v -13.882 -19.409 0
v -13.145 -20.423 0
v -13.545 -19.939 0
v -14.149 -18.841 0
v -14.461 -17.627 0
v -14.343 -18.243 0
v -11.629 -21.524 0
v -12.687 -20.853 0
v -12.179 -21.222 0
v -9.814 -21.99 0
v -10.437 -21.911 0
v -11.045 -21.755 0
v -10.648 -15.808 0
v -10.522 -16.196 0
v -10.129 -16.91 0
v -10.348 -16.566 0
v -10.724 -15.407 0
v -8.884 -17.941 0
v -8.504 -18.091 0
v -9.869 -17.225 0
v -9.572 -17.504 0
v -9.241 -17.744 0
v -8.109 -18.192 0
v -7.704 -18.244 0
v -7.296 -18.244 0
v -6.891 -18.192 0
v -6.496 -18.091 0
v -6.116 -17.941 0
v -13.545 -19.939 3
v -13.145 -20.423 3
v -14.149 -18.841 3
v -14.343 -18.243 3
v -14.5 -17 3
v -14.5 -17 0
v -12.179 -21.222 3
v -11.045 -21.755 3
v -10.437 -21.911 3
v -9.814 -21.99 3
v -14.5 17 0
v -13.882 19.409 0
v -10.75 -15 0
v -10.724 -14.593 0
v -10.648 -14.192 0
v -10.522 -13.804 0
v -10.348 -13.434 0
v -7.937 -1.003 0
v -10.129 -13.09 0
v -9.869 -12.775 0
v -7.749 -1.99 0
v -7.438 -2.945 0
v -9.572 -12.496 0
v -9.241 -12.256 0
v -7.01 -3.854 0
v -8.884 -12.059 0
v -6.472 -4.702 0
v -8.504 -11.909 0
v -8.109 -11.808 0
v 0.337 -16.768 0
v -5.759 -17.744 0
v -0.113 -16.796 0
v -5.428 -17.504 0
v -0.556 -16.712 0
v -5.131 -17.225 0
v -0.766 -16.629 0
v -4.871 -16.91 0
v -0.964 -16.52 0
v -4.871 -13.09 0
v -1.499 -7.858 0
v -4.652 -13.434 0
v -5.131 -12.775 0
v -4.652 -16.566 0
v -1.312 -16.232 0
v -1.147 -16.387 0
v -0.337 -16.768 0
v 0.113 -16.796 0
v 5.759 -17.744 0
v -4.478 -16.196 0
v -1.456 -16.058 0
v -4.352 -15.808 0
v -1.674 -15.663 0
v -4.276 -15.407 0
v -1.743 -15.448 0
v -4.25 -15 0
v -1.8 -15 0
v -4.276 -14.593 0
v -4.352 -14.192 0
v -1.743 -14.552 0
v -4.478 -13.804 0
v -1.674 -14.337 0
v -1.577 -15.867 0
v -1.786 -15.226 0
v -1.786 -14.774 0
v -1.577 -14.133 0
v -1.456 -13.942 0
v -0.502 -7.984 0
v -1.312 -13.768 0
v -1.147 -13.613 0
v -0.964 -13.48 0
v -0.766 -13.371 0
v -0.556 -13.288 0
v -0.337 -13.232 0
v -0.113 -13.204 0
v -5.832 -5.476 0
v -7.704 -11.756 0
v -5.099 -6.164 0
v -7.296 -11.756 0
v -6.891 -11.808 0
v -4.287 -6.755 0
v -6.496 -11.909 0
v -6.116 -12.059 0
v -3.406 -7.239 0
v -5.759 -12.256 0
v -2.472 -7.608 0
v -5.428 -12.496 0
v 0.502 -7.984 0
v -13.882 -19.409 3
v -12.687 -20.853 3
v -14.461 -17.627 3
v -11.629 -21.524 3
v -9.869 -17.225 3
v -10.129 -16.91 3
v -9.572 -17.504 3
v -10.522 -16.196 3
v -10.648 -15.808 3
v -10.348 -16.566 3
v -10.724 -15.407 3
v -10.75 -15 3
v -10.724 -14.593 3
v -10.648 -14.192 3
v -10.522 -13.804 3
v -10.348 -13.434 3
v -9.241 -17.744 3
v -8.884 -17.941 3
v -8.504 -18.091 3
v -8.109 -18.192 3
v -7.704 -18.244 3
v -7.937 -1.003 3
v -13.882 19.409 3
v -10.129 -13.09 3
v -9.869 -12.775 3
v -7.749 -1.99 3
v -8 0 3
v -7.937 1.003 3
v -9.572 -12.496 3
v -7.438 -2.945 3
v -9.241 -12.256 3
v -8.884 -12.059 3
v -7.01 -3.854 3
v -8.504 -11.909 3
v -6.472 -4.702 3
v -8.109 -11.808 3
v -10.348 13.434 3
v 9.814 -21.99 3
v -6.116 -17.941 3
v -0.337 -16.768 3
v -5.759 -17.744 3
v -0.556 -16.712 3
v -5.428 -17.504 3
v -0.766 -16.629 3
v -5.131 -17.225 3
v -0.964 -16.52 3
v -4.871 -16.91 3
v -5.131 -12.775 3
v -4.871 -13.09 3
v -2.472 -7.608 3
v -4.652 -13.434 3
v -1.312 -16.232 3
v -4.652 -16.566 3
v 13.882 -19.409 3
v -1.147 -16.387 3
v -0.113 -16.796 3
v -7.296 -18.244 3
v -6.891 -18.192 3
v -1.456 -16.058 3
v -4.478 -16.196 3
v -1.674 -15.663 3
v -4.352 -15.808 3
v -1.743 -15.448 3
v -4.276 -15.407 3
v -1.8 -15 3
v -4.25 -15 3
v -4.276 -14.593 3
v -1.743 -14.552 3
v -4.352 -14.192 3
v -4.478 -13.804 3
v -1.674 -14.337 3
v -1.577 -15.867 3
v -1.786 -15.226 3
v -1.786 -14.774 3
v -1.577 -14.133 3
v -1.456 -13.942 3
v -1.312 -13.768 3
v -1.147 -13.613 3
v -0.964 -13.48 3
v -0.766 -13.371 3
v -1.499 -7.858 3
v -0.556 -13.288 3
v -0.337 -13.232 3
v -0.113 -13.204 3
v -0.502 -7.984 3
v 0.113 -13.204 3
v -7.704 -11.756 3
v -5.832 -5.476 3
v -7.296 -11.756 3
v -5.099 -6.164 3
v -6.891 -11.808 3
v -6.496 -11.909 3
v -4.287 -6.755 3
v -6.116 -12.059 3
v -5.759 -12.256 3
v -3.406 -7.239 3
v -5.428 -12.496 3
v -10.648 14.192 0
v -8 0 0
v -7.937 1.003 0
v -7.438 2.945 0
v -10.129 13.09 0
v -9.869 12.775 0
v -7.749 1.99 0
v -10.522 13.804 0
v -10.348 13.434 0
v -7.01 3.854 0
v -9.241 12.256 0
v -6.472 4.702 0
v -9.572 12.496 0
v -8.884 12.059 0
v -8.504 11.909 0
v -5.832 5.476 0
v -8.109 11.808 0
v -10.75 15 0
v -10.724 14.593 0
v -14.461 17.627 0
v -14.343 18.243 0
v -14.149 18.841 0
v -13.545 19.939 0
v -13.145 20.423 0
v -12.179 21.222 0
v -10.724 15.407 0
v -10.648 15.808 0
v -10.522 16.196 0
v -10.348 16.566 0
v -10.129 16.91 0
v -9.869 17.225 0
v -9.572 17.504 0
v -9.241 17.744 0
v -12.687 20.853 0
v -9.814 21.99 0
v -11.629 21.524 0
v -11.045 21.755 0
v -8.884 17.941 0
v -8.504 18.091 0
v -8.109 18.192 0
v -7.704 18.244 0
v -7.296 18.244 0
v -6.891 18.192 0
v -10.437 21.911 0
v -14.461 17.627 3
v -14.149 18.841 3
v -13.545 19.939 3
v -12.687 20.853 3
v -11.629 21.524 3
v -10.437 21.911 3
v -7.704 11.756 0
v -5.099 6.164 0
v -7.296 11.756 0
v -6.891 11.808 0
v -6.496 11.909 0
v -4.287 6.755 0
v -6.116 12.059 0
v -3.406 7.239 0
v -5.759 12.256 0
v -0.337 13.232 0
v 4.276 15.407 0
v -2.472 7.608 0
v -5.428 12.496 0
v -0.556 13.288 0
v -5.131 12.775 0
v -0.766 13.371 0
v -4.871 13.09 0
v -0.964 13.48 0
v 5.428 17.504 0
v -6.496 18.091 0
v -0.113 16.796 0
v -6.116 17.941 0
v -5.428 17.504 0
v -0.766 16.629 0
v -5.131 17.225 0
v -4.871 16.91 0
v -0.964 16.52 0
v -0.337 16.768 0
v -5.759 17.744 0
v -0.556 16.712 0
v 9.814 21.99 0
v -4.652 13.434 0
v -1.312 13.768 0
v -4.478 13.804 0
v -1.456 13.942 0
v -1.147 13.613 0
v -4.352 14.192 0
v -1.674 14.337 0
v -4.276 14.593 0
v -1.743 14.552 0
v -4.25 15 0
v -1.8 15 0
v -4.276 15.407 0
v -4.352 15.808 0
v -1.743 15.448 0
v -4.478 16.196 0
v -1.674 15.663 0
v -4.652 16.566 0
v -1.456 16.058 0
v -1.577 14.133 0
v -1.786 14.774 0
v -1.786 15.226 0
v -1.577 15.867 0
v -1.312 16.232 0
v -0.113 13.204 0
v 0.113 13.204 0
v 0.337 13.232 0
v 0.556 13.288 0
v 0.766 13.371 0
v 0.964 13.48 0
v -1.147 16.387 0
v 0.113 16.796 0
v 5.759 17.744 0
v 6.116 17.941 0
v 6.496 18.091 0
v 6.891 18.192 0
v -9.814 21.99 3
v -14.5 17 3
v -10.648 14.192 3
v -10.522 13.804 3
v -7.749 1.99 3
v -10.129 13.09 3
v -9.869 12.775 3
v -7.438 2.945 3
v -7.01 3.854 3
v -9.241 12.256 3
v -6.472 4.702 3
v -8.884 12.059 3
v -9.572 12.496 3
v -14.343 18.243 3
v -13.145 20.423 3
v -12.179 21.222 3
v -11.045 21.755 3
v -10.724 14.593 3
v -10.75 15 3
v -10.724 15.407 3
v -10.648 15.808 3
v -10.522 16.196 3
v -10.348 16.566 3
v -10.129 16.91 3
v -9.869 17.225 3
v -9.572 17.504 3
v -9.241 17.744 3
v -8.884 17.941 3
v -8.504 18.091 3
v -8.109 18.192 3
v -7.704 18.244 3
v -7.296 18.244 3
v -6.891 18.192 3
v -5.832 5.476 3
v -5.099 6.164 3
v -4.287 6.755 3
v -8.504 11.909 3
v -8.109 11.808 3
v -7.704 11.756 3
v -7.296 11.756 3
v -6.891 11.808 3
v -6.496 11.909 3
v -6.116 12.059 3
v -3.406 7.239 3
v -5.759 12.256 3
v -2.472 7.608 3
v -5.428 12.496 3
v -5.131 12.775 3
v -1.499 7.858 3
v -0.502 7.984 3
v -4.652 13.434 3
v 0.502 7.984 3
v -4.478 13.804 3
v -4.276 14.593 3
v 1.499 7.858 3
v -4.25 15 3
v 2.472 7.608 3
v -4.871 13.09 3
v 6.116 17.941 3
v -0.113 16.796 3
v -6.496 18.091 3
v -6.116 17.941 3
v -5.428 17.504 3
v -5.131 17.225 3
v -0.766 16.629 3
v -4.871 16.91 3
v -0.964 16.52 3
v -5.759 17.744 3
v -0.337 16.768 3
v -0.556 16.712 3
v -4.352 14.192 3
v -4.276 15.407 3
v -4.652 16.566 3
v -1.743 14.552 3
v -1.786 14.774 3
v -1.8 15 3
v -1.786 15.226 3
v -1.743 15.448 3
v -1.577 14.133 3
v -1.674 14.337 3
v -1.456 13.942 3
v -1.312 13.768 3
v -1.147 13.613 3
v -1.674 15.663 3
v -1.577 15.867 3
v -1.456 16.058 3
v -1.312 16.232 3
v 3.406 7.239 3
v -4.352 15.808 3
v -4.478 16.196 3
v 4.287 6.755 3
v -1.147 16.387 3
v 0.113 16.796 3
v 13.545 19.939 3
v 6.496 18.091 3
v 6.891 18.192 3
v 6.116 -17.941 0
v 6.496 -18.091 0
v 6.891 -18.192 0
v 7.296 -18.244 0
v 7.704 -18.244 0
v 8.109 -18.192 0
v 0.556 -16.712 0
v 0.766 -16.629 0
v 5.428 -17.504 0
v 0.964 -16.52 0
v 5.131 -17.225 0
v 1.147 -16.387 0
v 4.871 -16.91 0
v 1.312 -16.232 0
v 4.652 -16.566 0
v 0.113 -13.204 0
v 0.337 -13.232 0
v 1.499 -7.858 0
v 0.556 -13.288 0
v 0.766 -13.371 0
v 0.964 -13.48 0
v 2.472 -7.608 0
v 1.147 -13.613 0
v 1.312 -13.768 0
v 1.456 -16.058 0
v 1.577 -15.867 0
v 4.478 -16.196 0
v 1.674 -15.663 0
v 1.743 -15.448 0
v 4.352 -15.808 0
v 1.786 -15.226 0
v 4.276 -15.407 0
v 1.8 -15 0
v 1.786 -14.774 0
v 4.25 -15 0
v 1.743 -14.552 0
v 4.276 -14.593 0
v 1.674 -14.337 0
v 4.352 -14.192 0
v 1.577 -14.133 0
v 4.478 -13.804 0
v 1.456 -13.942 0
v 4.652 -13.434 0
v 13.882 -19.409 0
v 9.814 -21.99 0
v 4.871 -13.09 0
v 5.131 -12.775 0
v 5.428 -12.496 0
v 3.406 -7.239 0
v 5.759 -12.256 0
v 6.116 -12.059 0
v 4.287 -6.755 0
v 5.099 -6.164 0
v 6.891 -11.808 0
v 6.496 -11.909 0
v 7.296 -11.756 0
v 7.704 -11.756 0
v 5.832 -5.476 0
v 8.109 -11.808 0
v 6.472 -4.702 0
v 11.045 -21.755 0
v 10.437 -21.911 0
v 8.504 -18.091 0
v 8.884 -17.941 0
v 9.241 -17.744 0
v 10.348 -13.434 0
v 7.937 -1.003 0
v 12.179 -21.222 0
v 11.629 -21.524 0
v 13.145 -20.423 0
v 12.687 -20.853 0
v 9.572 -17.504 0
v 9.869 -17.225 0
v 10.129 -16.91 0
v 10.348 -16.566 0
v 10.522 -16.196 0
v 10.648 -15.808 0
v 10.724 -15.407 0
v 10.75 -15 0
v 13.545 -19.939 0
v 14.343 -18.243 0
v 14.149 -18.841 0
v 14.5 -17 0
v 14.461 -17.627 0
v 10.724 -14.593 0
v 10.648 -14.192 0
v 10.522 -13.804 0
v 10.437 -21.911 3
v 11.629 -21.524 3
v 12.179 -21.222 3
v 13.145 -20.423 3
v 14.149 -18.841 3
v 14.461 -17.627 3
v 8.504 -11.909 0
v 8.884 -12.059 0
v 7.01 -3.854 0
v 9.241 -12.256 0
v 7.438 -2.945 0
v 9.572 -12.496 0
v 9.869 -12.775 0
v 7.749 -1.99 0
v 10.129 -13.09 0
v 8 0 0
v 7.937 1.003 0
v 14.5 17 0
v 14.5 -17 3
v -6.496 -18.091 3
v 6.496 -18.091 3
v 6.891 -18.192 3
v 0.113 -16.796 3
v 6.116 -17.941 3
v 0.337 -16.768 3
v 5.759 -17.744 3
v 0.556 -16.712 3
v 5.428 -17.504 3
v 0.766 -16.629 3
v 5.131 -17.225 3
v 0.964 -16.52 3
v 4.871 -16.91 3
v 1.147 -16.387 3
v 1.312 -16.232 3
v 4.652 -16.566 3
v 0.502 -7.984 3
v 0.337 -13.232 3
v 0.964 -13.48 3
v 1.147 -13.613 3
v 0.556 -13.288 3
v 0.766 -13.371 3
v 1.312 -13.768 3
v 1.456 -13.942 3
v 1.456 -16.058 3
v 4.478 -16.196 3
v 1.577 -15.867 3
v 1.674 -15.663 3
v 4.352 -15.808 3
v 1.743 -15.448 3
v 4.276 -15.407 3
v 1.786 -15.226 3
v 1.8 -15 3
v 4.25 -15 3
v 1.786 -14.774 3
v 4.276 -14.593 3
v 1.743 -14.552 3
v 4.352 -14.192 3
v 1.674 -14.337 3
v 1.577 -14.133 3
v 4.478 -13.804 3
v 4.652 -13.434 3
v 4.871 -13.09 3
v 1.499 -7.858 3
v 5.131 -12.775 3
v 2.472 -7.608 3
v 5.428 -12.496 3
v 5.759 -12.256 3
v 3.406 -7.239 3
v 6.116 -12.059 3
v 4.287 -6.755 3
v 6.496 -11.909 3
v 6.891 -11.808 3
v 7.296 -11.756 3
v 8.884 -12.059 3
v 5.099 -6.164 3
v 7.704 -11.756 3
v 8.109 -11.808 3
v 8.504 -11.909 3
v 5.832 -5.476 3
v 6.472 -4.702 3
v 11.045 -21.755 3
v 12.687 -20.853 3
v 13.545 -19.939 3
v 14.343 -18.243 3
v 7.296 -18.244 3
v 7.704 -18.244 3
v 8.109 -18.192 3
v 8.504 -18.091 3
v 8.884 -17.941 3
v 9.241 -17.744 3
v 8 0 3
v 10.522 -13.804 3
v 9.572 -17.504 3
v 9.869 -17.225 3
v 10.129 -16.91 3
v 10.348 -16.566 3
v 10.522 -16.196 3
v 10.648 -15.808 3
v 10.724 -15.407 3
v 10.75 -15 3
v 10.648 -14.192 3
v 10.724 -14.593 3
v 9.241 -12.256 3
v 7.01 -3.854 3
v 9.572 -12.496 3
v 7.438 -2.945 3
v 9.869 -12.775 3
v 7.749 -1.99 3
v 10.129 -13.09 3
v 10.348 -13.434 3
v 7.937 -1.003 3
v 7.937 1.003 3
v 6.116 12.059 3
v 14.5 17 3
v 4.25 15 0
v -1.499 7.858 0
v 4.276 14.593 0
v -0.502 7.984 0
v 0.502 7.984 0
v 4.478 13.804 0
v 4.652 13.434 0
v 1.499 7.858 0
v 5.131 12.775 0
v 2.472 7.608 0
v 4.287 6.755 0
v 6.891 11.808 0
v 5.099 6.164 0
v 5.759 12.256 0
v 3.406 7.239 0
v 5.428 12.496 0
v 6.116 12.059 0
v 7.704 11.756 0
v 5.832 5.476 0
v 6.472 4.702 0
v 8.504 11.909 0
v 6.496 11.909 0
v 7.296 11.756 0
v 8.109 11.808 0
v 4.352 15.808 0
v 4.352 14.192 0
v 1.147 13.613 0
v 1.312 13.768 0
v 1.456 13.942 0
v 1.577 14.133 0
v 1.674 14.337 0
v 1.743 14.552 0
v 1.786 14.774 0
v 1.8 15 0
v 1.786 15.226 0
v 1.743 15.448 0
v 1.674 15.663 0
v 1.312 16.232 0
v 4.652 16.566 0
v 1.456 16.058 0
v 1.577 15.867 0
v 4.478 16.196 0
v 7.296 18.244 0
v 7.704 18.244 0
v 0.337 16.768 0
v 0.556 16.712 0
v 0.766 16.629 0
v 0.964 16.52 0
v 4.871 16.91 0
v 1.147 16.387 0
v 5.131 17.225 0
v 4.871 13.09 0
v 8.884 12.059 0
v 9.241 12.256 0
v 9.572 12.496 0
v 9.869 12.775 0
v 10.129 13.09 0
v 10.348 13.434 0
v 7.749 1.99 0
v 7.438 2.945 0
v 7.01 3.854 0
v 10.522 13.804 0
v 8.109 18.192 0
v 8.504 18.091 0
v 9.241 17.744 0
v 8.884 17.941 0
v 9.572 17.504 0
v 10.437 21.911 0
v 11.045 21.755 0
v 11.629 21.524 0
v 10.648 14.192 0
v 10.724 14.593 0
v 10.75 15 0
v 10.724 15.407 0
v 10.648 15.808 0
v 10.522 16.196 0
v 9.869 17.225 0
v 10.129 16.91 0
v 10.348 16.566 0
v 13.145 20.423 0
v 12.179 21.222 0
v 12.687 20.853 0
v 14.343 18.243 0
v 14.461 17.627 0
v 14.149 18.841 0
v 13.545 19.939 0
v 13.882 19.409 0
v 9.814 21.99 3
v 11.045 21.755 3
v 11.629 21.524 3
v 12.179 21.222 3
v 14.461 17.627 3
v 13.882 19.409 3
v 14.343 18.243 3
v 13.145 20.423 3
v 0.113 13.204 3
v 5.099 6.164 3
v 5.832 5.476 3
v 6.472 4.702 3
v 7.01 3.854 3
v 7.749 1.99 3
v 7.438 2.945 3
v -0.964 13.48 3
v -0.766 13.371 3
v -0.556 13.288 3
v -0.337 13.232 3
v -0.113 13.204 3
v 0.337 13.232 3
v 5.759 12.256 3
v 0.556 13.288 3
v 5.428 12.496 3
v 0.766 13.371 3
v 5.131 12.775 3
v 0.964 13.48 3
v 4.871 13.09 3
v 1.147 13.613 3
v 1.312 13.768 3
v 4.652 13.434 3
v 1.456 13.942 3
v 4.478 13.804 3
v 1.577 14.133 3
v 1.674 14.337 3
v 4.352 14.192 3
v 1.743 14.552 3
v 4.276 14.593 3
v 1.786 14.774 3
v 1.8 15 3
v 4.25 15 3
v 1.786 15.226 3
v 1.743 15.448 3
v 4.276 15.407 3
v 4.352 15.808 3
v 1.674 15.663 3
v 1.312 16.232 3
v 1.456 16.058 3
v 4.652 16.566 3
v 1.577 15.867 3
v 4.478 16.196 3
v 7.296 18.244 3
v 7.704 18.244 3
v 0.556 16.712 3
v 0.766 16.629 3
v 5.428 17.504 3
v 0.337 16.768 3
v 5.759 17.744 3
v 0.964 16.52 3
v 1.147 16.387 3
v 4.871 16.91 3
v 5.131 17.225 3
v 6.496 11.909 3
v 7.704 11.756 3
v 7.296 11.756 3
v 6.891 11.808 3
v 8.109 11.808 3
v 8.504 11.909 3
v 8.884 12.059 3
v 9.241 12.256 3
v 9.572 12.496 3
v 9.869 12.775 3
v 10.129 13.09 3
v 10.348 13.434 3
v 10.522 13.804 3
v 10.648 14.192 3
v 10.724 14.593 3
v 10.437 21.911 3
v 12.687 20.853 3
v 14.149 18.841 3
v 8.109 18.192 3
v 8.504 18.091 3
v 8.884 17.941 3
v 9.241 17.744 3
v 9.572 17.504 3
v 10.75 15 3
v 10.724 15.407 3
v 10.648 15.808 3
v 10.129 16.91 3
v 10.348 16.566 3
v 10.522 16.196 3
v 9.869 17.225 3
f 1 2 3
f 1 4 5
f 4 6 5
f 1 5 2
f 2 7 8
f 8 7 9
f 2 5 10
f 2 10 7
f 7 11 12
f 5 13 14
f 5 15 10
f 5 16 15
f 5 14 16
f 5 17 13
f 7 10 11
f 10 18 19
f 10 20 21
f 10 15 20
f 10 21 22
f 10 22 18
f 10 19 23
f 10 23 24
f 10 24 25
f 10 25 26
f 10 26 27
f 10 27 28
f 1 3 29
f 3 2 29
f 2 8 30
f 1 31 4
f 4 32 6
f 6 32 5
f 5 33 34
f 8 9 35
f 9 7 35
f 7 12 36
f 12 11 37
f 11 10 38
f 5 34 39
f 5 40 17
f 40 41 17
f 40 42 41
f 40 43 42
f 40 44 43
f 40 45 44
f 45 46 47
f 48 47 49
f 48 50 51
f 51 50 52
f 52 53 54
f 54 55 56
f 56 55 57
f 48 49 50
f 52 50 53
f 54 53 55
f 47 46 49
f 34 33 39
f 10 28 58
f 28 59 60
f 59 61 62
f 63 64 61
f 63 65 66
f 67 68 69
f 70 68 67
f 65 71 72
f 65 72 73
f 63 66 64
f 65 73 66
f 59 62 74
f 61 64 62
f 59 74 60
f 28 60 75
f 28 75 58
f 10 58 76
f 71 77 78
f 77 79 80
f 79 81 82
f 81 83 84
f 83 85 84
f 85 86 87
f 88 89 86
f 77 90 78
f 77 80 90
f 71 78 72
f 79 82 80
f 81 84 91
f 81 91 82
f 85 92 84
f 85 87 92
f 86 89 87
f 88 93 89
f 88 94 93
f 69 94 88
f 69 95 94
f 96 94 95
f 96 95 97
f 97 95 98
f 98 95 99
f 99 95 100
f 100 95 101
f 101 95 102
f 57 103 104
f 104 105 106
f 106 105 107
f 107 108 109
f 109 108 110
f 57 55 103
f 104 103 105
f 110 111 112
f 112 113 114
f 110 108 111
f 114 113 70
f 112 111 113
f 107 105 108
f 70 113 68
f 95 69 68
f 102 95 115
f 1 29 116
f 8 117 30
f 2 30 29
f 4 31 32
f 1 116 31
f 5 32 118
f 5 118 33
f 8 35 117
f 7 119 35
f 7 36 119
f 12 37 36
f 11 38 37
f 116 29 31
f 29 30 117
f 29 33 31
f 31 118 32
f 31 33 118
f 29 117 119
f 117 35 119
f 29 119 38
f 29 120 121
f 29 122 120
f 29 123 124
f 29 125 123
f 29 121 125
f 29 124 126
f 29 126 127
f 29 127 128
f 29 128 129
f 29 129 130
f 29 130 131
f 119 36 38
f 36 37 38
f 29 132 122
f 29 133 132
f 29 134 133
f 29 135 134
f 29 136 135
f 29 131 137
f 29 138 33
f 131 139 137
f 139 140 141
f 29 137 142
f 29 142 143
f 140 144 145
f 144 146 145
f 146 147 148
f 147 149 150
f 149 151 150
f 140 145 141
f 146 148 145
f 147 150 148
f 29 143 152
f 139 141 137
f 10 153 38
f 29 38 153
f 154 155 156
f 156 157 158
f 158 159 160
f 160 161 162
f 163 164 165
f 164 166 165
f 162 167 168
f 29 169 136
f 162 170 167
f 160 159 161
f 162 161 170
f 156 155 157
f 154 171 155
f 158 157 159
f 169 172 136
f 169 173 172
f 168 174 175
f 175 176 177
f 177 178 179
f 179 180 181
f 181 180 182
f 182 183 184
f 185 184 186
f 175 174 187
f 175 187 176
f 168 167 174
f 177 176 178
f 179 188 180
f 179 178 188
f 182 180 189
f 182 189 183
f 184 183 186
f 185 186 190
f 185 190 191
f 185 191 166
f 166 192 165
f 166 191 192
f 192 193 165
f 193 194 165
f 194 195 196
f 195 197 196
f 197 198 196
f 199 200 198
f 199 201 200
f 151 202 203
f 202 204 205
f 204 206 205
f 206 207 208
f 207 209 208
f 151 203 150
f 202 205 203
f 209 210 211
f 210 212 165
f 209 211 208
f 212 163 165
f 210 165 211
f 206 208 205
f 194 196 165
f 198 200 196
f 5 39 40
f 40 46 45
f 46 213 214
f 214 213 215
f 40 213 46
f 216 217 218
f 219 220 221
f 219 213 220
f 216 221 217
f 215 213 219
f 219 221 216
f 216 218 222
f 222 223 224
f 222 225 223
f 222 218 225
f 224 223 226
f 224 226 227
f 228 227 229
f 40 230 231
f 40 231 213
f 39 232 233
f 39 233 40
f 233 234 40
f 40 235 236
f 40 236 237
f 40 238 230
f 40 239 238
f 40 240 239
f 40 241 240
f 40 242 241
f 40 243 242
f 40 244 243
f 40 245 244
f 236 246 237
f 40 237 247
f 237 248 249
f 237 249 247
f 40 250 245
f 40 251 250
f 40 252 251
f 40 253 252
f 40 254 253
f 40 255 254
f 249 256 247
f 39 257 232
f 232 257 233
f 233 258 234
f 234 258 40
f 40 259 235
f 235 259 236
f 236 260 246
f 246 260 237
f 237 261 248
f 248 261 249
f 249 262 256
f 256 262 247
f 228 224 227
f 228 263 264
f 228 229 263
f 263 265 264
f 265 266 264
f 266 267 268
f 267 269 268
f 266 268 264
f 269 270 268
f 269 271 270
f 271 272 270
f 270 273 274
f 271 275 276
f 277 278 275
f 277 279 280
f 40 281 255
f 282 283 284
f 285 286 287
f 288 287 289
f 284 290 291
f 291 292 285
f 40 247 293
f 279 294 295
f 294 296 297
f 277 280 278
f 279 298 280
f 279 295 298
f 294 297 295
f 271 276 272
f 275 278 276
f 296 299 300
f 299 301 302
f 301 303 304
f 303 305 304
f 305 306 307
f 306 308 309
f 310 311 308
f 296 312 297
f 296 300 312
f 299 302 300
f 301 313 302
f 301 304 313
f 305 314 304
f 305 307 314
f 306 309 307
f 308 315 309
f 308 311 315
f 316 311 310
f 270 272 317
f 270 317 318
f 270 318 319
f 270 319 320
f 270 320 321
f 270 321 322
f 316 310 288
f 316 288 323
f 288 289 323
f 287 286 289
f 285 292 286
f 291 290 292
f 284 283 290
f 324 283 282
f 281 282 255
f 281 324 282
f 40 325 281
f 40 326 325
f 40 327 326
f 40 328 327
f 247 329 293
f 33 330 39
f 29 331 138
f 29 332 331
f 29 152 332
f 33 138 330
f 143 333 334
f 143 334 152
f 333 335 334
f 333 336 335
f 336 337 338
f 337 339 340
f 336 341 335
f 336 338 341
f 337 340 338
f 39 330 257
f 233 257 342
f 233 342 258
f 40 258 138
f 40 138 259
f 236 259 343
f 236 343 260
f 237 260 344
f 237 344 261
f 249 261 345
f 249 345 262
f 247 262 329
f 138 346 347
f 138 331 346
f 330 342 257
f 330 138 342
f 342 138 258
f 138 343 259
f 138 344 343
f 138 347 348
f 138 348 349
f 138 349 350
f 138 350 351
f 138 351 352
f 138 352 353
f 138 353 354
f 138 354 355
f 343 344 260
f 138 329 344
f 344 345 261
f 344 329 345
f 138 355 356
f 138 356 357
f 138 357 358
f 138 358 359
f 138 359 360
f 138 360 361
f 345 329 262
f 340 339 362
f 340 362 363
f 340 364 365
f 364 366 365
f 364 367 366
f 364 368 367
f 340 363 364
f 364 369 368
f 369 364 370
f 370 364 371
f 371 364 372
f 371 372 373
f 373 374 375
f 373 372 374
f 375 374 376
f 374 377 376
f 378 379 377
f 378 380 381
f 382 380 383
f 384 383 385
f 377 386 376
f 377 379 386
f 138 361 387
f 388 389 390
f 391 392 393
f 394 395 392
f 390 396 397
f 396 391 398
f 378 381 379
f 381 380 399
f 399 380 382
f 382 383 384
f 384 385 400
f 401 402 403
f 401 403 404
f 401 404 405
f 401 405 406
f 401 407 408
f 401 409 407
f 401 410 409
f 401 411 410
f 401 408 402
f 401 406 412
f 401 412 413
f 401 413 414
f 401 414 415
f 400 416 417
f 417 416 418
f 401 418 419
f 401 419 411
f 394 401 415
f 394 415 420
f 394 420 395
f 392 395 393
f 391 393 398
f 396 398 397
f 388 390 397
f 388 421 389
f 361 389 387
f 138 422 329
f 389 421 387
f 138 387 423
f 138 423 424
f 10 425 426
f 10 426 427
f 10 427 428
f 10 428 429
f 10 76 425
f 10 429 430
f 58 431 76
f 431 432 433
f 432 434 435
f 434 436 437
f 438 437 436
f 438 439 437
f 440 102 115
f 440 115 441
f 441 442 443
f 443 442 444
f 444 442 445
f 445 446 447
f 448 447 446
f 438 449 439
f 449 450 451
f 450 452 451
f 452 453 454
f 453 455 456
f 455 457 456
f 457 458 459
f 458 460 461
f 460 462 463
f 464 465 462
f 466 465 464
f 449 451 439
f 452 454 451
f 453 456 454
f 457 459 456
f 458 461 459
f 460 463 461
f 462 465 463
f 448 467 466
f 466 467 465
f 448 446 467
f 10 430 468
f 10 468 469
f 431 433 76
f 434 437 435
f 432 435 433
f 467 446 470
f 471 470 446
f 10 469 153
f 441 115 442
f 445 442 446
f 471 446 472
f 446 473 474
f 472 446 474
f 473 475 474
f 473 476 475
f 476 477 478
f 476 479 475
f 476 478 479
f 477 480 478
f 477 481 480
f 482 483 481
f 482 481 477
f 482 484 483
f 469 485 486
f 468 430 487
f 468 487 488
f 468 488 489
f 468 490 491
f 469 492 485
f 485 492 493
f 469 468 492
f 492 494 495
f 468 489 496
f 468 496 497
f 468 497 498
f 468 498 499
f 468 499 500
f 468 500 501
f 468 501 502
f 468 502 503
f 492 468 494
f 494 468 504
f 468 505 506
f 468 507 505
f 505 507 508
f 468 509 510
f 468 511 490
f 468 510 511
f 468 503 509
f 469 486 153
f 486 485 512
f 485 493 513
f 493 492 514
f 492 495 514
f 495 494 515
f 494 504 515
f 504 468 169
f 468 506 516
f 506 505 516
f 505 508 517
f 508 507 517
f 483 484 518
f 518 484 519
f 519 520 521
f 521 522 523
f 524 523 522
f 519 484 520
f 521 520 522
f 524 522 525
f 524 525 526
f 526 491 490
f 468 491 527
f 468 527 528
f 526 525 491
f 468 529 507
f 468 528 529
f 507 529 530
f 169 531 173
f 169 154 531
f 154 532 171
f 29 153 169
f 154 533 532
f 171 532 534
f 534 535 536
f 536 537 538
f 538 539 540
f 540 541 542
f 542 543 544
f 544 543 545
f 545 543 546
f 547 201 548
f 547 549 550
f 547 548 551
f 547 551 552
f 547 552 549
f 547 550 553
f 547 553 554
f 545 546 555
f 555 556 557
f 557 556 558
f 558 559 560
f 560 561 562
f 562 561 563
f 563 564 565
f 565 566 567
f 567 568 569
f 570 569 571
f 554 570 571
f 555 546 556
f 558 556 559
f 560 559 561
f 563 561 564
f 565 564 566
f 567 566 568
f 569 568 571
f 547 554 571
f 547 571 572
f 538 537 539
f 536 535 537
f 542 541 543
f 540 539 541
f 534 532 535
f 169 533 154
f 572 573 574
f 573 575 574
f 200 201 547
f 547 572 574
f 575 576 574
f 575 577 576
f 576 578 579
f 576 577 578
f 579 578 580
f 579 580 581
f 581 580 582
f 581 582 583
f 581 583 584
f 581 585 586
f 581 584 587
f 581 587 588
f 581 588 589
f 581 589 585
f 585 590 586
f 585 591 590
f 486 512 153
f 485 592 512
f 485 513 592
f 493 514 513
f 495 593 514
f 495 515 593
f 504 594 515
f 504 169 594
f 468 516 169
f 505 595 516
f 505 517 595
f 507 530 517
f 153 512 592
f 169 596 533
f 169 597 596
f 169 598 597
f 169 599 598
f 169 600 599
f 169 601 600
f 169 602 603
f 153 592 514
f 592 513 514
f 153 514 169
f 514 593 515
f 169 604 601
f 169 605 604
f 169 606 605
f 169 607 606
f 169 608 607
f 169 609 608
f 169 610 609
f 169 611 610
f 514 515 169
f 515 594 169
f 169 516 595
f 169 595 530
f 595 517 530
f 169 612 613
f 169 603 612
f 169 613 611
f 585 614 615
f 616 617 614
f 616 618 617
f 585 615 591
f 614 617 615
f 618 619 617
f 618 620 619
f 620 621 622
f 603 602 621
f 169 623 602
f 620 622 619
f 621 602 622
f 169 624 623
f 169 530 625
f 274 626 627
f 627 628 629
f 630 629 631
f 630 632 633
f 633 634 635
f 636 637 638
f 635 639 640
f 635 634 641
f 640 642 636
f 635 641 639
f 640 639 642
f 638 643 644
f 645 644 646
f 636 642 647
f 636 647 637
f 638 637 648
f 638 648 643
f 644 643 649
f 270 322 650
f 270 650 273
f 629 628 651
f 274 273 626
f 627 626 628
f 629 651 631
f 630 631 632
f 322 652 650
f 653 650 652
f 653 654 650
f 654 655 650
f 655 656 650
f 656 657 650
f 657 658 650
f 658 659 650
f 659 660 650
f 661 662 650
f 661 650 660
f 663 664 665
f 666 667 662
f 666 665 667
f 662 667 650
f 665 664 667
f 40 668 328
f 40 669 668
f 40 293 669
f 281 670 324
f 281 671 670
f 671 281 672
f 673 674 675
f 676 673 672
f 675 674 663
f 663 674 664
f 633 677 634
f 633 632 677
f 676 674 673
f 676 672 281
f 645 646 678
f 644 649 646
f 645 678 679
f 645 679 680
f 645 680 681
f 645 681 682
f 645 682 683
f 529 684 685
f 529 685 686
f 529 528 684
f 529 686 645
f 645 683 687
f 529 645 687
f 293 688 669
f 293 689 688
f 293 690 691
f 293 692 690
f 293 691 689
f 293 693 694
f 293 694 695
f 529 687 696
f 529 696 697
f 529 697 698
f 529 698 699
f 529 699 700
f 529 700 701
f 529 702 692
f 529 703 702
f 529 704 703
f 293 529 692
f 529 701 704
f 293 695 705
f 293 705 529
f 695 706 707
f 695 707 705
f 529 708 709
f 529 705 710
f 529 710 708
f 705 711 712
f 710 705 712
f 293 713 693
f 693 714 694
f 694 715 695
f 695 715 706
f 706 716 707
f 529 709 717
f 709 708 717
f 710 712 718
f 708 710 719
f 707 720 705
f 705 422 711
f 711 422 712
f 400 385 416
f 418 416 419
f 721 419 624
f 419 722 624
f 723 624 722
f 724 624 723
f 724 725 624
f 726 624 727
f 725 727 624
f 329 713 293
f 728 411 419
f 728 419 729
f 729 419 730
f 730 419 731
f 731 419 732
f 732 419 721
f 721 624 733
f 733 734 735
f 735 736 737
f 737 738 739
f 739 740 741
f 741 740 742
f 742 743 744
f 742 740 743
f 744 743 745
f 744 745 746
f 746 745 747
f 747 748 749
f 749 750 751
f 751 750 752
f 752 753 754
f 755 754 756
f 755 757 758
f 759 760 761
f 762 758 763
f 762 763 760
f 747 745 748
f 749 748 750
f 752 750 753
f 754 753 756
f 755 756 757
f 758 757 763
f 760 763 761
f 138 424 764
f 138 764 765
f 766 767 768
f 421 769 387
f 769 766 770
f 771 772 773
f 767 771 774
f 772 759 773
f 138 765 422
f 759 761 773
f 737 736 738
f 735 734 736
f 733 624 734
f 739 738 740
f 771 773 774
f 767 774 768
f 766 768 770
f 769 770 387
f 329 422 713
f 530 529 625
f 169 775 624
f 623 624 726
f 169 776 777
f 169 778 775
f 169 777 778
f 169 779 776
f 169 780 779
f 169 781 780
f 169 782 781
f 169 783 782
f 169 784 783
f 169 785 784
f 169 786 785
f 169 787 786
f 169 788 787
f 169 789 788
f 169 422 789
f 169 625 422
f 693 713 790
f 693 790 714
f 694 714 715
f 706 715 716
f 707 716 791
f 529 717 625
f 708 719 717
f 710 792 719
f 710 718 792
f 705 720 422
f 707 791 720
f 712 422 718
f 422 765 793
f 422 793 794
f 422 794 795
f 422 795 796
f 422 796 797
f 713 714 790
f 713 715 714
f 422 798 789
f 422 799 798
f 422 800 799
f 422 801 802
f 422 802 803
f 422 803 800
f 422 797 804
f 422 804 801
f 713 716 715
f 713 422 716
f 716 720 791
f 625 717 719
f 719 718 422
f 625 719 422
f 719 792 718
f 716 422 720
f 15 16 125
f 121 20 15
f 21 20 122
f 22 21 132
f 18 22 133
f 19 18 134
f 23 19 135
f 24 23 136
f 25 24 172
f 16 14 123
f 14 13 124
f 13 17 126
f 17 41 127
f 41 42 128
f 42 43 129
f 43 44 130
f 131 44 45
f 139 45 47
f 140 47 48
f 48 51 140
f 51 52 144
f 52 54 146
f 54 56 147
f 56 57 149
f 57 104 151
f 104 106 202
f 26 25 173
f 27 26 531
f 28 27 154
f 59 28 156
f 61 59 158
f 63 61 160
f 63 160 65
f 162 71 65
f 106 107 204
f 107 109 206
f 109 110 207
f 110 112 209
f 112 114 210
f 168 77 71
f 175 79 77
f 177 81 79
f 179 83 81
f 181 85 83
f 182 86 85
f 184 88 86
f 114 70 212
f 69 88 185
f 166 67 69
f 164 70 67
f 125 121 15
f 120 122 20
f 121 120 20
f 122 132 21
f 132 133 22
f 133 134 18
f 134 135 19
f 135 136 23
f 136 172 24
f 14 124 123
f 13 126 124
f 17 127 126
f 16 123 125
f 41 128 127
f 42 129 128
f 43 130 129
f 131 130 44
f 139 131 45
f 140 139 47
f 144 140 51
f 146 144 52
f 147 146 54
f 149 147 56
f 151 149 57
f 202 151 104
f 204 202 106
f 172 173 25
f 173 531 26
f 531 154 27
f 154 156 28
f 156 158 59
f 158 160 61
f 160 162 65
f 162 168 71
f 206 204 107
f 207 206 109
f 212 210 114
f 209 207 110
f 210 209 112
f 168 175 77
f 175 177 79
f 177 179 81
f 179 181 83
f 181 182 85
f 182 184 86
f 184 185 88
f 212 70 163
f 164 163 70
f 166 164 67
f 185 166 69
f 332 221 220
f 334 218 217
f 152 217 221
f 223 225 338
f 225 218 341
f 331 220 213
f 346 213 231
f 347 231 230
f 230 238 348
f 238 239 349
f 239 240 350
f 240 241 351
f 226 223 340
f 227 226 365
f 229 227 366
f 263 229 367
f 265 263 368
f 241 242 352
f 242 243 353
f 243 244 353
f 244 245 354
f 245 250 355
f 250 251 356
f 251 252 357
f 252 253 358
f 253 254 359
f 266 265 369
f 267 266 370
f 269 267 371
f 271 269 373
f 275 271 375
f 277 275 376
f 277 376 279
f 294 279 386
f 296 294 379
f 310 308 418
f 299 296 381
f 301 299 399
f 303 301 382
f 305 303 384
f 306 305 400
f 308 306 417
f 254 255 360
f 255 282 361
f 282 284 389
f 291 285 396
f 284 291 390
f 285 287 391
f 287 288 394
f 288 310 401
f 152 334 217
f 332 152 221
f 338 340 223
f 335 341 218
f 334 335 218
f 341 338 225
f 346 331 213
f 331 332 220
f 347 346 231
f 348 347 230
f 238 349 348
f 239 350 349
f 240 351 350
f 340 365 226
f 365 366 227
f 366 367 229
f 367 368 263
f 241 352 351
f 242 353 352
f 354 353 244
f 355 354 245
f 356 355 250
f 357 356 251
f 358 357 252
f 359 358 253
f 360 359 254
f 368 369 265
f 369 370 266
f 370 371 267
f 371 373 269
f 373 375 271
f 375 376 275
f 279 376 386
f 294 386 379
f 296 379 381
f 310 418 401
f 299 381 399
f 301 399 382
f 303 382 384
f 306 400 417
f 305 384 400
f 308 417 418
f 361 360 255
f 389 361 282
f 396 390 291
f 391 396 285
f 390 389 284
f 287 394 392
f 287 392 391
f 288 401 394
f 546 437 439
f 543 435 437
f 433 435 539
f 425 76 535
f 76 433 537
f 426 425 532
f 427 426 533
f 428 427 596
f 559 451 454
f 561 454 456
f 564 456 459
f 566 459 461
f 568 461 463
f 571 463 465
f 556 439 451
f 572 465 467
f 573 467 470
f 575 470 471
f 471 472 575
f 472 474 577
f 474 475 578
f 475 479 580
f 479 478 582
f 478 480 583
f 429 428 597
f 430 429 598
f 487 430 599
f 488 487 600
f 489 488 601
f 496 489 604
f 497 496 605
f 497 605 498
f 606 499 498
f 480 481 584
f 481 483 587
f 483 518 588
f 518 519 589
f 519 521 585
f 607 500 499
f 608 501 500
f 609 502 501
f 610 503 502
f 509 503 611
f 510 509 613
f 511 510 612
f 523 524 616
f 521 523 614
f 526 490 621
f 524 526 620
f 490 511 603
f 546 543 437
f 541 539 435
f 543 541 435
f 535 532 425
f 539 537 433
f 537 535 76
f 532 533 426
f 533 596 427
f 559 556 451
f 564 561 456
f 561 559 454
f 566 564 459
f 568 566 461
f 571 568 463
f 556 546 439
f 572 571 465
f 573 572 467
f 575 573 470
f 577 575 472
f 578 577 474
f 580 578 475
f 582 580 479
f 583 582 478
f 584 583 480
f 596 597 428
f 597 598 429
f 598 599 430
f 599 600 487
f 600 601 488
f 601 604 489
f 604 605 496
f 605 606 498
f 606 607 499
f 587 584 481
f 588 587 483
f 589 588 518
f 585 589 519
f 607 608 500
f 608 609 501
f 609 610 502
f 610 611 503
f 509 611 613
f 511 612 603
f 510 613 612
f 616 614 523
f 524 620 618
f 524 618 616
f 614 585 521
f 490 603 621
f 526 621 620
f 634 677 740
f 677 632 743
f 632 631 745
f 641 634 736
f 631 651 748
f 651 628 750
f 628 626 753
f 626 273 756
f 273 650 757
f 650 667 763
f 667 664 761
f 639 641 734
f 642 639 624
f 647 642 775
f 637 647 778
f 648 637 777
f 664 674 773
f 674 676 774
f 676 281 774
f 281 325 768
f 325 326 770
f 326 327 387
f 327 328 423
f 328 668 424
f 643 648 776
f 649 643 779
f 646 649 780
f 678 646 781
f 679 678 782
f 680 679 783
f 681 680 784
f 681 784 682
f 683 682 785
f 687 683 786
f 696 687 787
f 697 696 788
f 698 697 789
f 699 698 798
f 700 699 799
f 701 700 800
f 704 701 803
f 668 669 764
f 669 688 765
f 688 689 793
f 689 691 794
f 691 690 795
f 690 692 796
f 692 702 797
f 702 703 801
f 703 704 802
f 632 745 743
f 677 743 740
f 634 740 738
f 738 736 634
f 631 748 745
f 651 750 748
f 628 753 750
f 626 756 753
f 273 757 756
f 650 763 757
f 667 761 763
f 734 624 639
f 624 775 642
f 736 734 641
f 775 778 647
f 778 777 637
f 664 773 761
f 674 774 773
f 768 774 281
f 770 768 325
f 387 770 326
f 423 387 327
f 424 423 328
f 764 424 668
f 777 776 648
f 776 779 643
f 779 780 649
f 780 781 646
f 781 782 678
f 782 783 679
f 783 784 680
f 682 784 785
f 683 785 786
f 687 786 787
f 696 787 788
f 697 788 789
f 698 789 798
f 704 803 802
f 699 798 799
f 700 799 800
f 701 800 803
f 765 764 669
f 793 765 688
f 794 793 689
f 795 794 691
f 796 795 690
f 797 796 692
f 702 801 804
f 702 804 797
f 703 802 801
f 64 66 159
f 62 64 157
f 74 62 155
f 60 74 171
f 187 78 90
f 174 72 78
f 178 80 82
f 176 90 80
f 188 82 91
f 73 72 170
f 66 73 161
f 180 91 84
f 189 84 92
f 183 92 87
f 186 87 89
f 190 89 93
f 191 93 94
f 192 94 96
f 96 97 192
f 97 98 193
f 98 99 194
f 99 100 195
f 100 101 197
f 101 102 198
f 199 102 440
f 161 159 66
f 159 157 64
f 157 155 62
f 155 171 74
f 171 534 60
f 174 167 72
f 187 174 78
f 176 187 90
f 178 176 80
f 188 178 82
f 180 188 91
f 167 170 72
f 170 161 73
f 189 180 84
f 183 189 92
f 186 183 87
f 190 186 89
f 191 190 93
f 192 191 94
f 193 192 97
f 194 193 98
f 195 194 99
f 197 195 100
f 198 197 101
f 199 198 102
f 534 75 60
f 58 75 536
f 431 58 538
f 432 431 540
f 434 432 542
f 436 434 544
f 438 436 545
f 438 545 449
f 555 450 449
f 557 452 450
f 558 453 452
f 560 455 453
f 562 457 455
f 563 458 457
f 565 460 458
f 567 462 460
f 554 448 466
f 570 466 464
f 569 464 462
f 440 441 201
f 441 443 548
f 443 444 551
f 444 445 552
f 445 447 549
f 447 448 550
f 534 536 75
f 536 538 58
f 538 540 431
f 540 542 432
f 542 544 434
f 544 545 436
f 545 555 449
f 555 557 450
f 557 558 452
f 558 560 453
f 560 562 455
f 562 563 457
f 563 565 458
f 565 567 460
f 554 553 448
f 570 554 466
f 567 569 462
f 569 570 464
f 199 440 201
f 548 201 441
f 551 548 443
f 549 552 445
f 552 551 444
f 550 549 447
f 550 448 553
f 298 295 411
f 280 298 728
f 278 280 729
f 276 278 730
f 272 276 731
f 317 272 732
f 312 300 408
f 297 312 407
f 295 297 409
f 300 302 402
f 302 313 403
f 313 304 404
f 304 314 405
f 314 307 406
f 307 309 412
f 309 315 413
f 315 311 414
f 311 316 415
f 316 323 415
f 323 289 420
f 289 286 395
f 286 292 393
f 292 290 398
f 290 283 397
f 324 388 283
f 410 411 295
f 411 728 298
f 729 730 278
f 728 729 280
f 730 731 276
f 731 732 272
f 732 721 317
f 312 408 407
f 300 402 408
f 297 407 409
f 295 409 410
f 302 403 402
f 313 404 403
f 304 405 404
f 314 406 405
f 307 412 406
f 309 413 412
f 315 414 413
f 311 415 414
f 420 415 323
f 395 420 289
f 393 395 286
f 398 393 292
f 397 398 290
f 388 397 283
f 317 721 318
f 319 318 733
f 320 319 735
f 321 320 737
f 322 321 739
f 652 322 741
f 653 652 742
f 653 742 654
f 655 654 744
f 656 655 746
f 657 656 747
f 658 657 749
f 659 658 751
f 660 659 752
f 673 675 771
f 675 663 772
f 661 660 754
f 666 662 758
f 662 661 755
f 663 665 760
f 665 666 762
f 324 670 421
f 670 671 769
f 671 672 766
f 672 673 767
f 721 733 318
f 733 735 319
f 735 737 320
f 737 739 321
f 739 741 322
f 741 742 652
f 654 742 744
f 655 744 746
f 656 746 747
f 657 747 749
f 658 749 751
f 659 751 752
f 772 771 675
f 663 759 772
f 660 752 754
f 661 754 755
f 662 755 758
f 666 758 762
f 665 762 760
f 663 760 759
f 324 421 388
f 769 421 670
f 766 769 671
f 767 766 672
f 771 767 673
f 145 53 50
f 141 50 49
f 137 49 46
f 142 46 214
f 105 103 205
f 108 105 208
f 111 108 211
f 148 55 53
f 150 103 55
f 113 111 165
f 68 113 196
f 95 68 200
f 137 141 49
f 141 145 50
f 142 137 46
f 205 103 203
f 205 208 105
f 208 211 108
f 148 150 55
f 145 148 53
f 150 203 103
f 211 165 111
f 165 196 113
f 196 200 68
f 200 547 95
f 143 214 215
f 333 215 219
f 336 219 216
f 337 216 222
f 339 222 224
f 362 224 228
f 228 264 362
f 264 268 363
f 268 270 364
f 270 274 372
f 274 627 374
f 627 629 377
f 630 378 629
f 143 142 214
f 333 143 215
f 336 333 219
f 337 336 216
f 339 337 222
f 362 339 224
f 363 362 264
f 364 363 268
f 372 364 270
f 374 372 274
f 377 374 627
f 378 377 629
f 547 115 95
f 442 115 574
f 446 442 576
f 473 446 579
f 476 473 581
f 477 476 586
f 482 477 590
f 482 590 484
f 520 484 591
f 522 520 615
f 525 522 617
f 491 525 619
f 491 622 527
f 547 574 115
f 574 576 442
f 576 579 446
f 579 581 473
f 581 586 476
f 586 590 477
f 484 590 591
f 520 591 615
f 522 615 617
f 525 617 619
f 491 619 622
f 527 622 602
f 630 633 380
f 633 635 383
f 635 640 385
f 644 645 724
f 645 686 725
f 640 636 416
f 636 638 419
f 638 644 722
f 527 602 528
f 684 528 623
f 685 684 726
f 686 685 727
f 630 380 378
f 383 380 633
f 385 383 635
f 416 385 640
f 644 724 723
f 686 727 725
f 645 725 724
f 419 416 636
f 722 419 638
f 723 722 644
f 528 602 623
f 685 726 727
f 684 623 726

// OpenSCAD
$fn = 50;

difference() {
	union() {
		hull() {
			translate(v = [-9.5, 17.0, 0]) {
				cylinder(h = 3, r = 5);
			}
			translate(v = [9.5, 17.0, 0]) {
				cylinder(h = 3, r = 5);
			}
			translate(v = [-9.5, -17.0, 0]) {
				cylinder(h = 3, r = 5);
			}
			translate(v = [9.5, -17.0, 0]) {
				cylinder(h = 3, r = 5);
			}
		}
	}
	union() {
		translate(v = [-7.5, -15.0, 0]) {
			cylinder(h = 3, r = 3.25);
		}
		translate(v = [-7.5, 15.0, 0]) {
			cylinder(h = 3, r = 3.25);
		}
		translate(v = [7.5, -15.0, 0]) {
			cylinder(h = 3, r = 3.25);
		}
		translate(v = [7.5, 15.0, 0]) {
			cylinder(h = 3, r = 3.25);
		}
		translate(v = [0.0, -15.0, 0]) {
			cylinder(h = 3, r = 1.8);
		}
		translate(v = [0.0, 15.0, 0]) {
			cylinder(h = 3, r = 1.8);
		}
		cylinder(h = 3, r = 8.0);
	}
}
